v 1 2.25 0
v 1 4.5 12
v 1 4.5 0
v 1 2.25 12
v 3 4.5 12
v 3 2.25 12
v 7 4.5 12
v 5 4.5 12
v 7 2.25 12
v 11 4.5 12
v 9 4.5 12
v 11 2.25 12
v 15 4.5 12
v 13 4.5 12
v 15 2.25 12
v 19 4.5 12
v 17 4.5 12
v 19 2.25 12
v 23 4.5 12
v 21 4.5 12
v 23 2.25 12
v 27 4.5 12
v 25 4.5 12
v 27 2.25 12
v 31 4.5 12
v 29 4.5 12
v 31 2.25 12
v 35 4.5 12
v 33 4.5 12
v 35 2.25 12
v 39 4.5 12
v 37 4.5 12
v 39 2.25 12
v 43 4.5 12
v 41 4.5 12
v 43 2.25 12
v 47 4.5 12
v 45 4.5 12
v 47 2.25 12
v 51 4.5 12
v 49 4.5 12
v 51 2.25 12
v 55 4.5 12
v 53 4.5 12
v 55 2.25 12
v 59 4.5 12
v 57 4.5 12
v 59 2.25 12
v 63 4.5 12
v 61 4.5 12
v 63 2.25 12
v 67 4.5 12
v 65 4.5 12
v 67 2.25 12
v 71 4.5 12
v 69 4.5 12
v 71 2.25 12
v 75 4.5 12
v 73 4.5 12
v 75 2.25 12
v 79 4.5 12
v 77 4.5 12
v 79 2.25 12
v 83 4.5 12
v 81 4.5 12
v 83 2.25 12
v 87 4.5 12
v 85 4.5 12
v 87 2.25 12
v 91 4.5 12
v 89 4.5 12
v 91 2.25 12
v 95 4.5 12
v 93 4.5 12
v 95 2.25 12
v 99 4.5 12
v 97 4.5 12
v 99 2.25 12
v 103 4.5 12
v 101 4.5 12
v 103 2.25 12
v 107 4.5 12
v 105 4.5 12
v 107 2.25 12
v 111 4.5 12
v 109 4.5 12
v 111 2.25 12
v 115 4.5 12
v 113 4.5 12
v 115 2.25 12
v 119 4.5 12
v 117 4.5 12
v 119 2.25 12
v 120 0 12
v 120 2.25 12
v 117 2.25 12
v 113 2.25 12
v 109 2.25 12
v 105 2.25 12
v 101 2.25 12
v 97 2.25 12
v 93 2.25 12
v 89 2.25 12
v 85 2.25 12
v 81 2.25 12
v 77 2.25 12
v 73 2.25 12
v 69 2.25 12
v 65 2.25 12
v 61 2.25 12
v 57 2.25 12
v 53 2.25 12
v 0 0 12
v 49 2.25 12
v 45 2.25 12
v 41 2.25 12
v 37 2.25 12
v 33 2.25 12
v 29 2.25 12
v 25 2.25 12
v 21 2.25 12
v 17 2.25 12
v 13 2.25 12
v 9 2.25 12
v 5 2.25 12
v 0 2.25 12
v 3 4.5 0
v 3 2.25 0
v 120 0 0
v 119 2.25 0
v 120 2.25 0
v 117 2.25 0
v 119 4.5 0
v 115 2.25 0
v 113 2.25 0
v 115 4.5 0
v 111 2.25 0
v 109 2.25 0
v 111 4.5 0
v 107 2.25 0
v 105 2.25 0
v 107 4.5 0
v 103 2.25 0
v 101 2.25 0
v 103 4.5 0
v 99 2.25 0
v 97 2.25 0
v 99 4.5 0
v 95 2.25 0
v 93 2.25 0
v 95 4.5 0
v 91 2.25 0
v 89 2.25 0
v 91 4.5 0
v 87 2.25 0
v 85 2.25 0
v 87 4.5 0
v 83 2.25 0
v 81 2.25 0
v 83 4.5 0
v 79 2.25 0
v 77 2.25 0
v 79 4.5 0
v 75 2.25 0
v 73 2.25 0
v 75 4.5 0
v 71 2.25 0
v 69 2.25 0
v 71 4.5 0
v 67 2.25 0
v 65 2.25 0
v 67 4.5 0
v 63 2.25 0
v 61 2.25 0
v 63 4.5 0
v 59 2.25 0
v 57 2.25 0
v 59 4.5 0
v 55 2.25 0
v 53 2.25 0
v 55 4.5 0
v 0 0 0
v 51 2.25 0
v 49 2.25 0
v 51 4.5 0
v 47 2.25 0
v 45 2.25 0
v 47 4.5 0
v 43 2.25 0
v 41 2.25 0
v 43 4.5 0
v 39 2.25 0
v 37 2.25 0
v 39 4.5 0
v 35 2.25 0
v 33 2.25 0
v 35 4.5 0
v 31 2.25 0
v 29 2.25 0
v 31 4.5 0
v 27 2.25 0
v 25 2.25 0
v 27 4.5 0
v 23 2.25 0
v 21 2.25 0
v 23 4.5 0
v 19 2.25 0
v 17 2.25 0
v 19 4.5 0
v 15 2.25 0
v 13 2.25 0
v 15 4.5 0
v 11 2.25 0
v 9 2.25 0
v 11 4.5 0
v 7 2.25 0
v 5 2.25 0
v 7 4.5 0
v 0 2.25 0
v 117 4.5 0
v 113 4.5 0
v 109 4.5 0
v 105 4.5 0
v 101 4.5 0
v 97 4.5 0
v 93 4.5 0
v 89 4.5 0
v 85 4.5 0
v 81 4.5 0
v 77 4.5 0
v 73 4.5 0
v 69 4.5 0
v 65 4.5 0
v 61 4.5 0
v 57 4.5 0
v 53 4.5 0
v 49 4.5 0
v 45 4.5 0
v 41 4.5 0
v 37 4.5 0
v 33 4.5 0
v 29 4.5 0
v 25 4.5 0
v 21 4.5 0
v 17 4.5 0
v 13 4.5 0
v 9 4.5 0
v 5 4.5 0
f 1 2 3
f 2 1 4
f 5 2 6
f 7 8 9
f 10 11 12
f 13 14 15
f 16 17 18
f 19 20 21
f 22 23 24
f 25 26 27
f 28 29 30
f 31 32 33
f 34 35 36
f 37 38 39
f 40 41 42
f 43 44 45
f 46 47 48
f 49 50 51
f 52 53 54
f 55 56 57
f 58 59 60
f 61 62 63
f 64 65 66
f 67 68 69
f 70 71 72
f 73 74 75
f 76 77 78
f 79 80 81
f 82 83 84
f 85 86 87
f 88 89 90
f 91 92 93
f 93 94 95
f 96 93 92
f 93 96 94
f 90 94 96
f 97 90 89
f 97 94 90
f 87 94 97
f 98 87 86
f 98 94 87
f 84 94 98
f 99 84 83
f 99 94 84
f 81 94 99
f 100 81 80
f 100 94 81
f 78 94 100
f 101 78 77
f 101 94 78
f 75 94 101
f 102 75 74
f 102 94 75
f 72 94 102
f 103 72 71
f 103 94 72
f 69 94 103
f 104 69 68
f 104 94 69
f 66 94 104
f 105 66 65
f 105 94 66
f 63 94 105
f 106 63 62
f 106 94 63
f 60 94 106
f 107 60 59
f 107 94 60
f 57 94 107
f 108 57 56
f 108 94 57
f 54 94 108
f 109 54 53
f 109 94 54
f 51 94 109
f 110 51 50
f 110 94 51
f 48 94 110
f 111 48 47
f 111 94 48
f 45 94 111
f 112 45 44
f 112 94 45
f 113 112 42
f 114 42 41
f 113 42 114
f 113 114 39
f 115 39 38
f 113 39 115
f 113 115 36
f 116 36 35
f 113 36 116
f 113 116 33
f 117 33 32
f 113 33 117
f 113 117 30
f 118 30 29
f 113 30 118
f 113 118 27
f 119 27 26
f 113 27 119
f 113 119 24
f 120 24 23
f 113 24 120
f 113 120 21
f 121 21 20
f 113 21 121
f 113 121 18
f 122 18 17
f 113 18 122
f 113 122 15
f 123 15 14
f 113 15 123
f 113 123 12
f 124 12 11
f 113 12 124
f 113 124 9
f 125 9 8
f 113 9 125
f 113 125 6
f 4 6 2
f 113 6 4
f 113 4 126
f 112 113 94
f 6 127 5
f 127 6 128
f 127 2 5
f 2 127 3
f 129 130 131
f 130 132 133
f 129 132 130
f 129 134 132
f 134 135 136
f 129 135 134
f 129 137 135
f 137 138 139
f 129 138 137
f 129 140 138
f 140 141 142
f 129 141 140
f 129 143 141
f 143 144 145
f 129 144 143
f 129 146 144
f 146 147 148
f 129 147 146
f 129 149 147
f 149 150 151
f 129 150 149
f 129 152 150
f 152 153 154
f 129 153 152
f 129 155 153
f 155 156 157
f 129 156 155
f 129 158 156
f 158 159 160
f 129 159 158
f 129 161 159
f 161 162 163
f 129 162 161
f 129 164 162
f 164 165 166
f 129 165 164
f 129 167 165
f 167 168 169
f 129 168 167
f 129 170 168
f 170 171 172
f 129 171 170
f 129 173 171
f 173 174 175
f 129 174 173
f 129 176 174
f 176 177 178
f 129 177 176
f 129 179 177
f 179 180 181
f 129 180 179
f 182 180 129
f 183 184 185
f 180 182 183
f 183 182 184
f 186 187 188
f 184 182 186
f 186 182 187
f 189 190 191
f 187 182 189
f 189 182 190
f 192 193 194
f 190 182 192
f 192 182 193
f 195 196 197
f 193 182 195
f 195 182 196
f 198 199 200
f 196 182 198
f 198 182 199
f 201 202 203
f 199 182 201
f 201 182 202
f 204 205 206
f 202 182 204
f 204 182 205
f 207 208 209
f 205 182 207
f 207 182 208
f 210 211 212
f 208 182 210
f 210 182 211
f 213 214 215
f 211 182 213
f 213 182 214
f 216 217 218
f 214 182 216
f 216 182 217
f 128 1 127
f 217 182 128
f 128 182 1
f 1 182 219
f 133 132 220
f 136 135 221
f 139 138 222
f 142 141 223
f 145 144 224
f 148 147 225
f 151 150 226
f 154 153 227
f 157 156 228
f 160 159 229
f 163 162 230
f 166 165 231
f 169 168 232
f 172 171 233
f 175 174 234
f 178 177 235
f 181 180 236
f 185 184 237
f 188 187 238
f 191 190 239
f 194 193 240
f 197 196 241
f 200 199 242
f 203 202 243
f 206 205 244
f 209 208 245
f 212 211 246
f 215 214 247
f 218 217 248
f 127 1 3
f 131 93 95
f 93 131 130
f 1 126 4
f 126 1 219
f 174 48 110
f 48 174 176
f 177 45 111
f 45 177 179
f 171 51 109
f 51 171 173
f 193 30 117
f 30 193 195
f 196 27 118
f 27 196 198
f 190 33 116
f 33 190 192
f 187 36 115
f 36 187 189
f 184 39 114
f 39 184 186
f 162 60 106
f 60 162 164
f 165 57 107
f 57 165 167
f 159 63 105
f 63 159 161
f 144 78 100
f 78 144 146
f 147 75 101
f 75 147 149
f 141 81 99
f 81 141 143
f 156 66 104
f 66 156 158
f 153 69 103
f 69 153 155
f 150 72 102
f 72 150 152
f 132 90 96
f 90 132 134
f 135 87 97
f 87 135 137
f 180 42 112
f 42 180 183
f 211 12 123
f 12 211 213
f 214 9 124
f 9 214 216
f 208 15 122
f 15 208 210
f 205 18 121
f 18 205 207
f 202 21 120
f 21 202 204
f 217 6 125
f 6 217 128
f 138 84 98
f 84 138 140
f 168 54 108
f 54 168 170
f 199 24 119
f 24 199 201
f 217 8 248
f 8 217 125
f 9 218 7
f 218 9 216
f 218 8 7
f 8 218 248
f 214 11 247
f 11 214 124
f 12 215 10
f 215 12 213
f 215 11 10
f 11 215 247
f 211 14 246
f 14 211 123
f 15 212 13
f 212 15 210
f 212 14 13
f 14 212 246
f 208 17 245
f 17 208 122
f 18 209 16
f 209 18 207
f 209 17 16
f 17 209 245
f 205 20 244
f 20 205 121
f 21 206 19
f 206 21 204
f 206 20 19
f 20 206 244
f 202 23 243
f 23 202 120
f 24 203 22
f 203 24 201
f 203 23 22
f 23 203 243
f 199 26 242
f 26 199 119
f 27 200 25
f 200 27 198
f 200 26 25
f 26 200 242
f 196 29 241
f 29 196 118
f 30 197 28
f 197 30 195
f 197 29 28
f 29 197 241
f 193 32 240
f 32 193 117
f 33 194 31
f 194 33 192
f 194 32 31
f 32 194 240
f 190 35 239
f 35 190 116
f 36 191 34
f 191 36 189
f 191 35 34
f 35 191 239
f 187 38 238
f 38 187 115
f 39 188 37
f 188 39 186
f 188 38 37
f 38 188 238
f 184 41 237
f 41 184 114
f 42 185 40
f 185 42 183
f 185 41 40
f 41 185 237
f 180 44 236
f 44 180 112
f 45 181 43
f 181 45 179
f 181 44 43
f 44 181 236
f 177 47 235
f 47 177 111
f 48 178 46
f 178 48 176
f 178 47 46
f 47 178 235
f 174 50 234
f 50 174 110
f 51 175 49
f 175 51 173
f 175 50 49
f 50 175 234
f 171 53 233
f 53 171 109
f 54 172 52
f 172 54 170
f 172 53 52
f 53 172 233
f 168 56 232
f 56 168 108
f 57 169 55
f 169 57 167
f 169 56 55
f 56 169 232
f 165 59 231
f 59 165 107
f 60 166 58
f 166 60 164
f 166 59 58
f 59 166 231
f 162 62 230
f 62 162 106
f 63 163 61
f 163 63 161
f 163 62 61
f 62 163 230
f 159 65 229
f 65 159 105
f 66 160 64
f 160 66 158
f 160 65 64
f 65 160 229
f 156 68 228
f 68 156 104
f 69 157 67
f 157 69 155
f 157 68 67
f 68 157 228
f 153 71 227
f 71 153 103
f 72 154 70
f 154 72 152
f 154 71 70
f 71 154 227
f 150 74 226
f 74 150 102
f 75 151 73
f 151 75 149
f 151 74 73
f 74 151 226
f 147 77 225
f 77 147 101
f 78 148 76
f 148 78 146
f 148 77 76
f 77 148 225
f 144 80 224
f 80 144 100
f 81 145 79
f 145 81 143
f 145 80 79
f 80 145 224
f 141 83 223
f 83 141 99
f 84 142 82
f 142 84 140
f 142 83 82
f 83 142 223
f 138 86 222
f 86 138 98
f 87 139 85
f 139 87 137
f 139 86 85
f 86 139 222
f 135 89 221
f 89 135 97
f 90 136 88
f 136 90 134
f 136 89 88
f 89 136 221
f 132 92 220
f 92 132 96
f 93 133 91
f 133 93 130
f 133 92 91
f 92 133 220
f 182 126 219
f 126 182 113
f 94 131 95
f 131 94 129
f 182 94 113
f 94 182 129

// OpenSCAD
// 齿条 (Rack) - 3D 模型
// 单位: 毫米 (mm)

// 基础参数
$fn = 50;

pitch = 4.0;
tooth_height = 2.25;
tooth_thickness = 2.0;
width = 12.0;
num_teeth = 30;           // 齿数量 (120mm长度)

total_length = num_teeth * pitch;
total_height = tooth_height * 2;

// 基础底板
cube([total_length, tooth_height, width]);

// 添加齿形
for (i = [0 : num_teeth - 1]) {
    translate([i * pitch + tooth_thickness/2, tooth_height, 0])
    cube([tooth_thickness, tooth_height, width]);
}
